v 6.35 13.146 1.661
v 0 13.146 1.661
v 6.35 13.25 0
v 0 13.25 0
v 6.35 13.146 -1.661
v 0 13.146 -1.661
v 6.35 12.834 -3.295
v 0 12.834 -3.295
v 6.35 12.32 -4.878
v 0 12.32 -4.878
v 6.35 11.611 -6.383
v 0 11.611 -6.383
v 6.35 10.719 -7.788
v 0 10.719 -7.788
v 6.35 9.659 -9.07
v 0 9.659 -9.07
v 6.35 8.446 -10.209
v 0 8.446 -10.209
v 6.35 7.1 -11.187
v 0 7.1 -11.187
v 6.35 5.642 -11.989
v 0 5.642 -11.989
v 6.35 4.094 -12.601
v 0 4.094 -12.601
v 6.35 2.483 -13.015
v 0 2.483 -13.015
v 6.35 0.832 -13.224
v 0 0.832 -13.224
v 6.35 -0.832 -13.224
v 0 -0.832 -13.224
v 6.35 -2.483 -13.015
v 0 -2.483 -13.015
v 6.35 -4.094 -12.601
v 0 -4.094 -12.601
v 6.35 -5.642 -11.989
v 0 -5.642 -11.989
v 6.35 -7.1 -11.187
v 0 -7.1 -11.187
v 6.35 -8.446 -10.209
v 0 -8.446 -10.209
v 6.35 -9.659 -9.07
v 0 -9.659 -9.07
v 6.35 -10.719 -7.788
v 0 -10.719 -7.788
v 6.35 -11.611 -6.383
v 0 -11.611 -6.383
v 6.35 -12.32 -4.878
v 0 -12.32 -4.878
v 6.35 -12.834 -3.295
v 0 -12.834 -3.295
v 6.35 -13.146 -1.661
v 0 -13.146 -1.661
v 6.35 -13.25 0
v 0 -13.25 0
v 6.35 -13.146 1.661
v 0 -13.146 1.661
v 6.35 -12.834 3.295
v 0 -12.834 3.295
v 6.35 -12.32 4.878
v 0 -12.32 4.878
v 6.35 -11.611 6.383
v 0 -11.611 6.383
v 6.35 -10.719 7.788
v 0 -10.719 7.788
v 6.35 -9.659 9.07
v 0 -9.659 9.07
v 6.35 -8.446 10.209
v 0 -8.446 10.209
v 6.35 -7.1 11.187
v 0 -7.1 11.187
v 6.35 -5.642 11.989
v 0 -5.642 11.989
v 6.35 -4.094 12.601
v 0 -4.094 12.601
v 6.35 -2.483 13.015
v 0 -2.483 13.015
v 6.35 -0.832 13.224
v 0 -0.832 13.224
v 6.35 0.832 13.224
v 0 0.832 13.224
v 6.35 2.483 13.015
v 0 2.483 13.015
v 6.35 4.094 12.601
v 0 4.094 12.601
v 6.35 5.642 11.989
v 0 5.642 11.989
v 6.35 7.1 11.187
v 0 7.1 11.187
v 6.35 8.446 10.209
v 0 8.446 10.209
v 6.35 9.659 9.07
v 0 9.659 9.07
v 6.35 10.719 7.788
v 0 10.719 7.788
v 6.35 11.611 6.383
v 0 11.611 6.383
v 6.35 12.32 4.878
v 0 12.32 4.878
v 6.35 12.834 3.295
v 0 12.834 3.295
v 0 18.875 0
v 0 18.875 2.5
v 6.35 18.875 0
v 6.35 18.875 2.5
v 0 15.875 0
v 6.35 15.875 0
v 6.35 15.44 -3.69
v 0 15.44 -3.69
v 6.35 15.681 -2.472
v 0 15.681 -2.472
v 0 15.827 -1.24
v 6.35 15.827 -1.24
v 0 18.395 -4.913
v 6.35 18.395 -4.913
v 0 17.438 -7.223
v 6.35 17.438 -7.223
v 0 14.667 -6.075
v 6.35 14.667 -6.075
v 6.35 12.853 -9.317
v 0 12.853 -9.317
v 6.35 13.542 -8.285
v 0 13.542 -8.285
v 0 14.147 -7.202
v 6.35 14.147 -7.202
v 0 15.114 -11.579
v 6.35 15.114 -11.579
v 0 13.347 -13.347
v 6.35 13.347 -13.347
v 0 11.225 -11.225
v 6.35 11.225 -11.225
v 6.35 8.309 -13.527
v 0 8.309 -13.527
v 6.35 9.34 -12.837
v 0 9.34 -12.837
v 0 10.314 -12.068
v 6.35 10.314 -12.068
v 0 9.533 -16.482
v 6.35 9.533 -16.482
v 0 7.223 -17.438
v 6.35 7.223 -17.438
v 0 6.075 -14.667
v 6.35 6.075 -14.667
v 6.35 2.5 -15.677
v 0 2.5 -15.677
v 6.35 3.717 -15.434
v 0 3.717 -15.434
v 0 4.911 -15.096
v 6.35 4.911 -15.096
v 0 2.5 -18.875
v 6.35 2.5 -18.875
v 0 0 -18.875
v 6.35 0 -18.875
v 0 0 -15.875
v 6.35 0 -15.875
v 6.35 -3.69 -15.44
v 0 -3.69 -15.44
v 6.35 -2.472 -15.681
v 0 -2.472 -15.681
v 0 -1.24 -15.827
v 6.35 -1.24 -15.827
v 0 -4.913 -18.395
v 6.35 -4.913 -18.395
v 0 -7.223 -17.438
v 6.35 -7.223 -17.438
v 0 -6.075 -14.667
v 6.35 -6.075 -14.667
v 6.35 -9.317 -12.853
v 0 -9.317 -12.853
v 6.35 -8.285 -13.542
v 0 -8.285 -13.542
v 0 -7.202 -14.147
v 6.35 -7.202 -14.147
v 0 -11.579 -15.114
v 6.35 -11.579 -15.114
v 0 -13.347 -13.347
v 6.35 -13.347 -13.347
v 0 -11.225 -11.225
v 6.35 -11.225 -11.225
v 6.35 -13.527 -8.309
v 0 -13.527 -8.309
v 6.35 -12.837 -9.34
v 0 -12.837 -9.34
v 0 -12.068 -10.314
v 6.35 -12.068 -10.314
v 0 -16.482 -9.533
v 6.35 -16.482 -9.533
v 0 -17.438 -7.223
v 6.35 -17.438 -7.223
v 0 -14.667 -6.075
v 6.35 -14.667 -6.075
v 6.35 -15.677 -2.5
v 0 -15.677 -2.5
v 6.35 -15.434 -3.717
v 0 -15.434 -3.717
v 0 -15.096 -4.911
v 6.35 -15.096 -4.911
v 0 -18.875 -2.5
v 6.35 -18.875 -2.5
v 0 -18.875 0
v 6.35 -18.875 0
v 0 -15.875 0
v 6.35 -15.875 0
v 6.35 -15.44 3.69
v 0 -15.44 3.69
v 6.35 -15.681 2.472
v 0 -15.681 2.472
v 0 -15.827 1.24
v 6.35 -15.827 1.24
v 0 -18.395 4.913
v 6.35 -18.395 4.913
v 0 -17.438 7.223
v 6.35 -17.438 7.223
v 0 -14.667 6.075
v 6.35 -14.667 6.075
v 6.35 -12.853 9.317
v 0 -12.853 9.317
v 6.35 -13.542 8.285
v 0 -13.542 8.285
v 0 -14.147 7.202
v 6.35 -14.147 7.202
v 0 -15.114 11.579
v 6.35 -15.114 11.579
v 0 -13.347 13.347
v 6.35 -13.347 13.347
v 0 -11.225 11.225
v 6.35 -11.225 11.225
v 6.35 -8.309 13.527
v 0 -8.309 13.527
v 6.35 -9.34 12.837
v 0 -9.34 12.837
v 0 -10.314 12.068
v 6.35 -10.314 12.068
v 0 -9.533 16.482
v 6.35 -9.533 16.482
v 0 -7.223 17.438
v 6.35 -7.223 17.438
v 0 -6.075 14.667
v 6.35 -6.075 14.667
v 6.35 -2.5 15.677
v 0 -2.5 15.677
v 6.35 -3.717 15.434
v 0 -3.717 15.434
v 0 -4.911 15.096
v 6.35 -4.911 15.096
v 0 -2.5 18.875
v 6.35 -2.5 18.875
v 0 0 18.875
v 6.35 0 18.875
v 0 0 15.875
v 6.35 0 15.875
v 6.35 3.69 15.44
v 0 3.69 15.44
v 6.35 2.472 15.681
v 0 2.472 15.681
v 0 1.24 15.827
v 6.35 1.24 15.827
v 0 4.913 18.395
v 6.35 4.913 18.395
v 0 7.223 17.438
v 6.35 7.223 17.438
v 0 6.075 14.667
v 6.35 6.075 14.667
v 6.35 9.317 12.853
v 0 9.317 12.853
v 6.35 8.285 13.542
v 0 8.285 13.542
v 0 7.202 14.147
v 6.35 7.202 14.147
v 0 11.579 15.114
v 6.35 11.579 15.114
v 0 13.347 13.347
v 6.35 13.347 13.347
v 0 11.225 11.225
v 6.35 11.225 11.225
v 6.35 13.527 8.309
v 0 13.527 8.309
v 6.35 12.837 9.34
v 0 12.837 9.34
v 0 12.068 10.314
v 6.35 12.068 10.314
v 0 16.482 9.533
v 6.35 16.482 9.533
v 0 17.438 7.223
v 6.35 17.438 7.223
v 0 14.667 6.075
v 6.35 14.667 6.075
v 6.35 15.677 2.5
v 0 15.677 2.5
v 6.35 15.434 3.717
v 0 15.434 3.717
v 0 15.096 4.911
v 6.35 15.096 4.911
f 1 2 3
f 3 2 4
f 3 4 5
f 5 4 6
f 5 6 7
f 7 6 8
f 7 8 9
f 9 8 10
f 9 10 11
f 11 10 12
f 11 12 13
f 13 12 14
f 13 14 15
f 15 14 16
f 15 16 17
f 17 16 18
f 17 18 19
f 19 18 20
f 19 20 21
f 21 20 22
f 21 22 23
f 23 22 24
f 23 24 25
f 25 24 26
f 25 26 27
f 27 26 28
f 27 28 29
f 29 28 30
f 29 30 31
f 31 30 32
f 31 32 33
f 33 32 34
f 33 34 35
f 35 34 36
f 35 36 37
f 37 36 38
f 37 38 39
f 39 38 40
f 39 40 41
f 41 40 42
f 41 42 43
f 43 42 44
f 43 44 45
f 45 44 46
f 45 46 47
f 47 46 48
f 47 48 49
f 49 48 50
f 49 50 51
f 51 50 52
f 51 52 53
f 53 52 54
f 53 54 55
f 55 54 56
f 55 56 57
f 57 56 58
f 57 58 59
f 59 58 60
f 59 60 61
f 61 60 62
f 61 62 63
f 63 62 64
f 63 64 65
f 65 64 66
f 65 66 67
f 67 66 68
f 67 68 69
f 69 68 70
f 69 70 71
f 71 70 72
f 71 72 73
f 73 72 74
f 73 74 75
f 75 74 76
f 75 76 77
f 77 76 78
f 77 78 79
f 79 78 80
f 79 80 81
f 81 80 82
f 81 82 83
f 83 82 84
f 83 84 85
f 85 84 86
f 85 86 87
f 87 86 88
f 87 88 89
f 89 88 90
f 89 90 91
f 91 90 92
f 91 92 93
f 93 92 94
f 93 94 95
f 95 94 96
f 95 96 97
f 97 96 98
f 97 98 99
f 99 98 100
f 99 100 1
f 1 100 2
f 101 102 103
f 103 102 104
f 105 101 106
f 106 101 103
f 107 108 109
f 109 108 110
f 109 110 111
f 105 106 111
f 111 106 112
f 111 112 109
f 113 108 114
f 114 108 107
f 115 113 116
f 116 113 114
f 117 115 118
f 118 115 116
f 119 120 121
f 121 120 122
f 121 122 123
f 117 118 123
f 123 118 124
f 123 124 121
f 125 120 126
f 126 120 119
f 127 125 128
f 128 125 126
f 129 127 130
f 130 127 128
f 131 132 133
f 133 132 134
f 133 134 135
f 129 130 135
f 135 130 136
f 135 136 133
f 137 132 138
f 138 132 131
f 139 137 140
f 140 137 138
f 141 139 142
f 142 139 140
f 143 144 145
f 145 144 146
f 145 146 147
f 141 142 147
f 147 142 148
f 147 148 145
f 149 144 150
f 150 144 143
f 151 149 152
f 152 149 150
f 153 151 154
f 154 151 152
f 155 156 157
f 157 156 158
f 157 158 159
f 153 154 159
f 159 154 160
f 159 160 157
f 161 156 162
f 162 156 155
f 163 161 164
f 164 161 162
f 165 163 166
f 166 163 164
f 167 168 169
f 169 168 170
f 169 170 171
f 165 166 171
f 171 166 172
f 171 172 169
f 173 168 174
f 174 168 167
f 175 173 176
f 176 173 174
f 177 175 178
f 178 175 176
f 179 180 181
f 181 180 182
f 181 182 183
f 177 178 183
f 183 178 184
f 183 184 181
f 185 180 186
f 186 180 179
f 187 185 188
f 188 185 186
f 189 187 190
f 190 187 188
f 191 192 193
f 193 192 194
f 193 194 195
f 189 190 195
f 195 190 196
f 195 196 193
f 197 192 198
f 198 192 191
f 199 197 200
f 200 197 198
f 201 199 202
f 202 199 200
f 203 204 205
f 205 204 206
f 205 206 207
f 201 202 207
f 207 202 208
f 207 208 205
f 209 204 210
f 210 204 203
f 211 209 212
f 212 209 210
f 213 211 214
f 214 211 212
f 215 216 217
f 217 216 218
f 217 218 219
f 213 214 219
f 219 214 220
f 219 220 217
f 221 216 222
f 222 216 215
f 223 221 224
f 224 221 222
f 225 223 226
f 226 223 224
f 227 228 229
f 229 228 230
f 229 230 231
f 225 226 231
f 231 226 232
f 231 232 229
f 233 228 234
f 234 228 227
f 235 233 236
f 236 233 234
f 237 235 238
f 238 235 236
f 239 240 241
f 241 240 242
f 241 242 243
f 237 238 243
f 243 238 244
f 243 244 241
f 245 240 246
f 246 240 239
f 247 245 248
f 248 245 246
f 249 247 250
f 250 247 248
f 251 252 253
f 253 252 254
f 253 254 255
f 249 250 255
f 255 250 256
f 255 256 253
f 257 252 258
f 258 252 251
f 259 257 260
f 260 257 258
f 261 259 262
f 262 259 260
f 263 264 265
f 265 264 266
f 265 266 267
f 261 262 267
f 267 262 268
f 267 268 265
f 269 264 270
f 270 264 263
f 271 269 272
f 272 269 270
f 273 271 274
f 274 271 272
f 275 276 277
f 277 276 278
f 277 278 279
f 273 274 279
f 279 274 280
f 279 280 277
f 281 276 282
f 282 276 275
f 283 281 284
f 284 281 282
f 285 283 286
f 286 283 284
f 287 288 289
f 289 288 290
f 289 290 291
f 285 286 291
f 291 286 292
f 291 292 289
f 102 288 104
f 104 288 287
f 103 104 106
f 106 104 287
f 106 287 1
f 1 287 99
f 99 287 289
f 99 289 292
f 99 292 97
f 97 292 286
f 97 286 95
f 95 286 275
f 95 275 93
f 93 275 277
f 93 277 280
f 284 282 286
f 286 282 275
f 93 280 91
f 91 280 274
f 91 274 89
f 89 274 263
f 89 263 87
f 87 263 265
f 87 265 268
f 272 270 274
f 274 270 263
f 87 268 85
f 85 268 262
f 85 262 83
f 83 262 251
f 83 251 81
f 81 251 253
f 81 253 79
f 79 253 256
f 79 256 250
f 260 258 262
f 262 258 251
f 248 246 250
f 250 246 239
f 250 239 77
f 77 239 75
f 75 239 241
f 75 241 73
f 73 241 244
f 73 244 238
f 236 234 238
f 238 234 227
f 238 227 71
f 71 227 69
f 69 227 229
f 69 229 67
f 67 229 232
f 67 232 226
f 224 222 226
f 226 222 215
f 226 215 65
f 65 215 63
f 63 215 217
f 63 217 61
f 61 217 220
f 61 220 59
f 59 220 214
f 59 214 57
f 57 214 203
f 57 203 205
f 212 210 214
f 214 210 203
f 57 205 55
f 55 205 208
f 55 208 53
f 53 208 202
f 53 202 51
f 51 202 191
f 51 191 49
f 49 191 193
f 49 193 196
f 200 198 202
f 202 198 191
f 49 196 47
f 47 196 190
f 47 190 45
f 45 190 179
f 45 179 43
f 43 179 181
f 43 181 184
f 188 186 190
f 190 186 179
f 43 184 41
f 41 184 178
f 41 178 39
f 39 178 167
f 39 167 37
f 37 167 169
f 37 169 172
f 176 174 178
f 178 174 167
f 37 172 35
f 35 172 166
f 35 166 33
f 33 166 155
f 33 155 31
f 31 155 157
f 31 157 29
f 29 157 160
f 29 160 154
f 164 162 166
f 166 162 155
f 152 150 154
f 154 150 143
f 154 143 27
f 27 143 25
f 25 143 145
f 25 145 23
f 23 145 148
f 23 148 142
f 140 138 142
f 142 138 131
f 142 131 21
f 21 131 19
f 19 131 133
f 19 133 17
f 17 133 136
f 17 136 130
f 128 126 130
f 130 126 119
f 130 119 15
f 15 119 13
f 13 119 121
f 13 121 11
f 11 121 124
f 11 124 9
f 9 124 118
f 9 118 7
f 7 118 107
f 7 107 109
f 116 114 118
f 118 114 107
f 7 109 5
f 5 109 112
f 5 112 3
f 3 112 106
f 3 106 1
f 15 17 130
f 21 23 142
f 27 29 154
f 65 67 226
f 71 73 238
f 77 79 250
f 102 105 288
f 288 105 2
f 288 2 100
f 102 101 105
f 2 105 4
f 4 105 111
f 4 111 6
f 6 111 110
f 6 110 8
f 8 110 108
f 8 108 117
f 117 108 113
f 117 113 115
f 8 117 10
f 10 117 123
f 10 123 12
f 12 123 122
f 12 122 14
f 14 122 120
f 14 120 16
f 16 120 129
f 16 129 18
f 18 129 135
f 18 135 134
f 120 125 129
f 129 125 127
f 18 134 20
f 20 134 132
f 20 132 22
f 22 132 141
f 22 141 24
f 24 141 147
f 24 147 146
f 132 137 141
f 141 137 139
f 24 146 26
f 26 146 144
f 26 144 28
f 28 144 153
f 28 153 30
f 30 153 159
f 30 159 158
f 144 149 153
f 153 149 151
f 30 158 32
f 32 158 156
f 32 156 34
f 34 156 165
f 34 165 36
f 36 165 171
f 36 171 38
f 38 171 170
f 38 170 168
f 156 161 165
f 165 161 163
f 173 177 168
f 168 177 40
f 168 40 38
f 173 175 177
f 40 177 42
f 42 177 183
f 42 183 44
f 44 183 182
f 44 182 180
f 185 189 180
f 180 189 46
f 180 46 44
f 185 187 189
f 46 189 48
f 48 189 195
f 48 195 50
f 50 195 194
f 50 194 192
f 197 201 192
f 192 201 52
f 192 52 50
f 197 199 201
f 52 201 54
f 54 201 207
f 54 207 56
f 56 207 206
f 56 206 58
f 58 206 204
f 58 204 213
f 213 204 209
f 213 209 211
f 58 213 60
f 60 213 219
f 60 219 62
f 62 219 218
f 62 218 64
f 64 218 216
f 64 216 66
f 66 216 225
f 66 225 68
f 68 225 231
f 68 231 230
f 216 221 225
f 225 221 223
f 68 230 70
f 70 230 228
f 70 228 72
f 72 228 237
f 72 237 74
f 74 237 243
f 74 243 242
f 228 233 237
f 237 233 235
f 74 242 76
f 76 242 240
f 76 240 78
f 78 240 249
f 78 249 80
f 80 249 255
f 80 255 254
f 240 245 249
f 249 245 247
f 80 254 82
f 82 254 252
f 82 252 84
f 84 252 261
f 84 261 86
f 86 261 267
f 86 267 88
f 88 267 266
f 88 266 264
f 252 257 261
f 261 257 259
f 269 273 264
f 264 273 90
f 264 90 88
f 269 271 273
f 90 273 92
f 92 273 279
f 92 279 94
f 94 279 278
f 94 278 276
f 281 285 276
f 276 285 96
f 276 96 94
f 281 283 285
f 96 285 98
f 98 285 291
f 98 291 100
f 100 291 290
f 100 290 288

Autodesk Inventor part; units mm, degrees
ref_plane "YZ Plane" through (0, 0, 0) normal (1, 0, 0) x (0, 1, 0)
ref_plane "XZ Plane" through (0, 0, 0) normal (0, 1, 0) x (-1, 0, 0)
ref_plane "XY Plane" through (0, 0, 0) normal (0, 0, 1) x (1, 0, 0)
sketch "Sketch1" plane through (0, 0, 0) normal (1, 0, 0) x (0, 1, 0)
  circle A0 centre (0, 0) radius 13.25
  circle A1 centre (0, 0) radius 15.875
  line L0 (15.875, 0) -> (18.875, 0)
  line L1 (18.875, 0) -> (18.875, 2.5)
  line L2 (18.875, 2.5) -> (15.6769, 2.5)
  line L3 (17.4382, 7.2231) -> (16.4815, 9.5328)
  line L4 (16.4815, 9.5328) -> (13.5269, 8.309)
  line L5 (14.6666, 6.0751) -> (17.4382, 7.2231)
  line L6 (13.3466, 13.3466) -> (11.5789, 15.1144)
  line L7 (11.5789, 15.1144) -> (9.3175, 12.853)
  line L8 (11.2253, 11.2253) -> (13.3466, 13.3466)
  line L9 (7.2231, 17.4382) -> (4.9135, 18.3949)
  line L10 (4.9135, 18.3949) -> (3.6896, 15.4403)
  line L11 (6.0751, 14.6666) -> (7.2231, 17.4382)
  line L12 (0, 18.875) -> (-2.5, 18.875)
  line L13 (-2.5, 18.875) -> (-2.5, 15.6769)
  line L14 (0, 15.875) -> (0, 18.875)
  line L15 (-7.2231, 17.4382) -> (-9.5328, 16.4815)
  line L16 (-9.5328, 16.4815) -> (-8.309, 13.5269)
  line L17 (-6.0751, 14.6666) -> (-7.2231, 17.4382)
  line L18 (-13.3466, 13.3466) -> (-15.1144, 11.5789)
  line L19 (-15.1144, 11.5789) -> (-12.853, 9.3175)
  line L20 (-11.2253, 11.2253) -> (-13.3466, 13.3466)
  line L21 (-17.4382, 7.2231) -> (-18.3949, 4.9135)
  line L22 (-18.3949, 4.9135) -> (-15.4403, 3.6896)
  line L23 (-14.6666, 6.0751) -> (-17.4382, 7.2231)
  line L24 (-18.875, 0) -> (-18.875, -2.5)
  line L25 (-18.875, -2.5) -> (-15.6769, -2.5)
  line L26 (-15.875, 0) -> (-18.875, 0)
  line L27 (-17.4382, -7.2231) -> (-16.4815, -9.5328)
  line L28 (-16.4815, -9.5328) -> (-13.5269, -8.309)
  line L29 (-14.6666, -6.0751) -> (-17.4382, -7.2231)
  line L30 (-13.3466, -13.3466) -> (-11.5789, -15.1144)
  line L31 (-11.5789, -15.1144) -> (-9.3175, -12.853)
  line L32 (-11.2253, -11.2253) -> (-13.3466, -13.3466)
  line L33 (-7.2231, -17.4382) -> (-4.9135, -18.3949)
  line L34 (-4.9135, -18.3949) -> (-3.6896, -15.4403)
  line L35 (-6.0751, -14.6666) -> (-7.2231, -17.4382)
  line L36 (0, -18.875) -> (2.5, -18.875)
  line L37 (2.5, -18.875) -> (2.5, -15.6769)
  line L38 (0, -15.875) -> (0, -18.875)
  line L39 (7.2231, -17.4382) -> (9.5328, -16.4815)
  line L40 (9.5328, -16.4815) -> (8.309, -13.5269)
  line L41 (6.0751, -14.6666) -> (7.2231, -17.4382)
  line L42 (13.3466, -13.3466) -> (15.1144, -11.5789)
  line L43 (15.1144, -11.5789) -> (12.853, -9.3175)
  line L44 (11.2253, -11.2253) -> (13.3466, -13.3466)
  line L45 (17.4382, -7.2231) -> (18.3949, -4.9135)
  line L46 (18.3949, -4.9135) -> (15.4403, -3.6896)
  line L47 (14.6666, -6.0751) -> (17.4382, -7.2231)
  dimension "d1" = 31.75
  dimension "d0" = 26.5
  dimension "d3" = 3
  dimension "d4" = 2.5
  dimension "d7" = 360
extrude "Extrusion1" add sketch "Sketch1" along normal blind 6.35
properties part number "wedge holder" material "ABS Plastic"
